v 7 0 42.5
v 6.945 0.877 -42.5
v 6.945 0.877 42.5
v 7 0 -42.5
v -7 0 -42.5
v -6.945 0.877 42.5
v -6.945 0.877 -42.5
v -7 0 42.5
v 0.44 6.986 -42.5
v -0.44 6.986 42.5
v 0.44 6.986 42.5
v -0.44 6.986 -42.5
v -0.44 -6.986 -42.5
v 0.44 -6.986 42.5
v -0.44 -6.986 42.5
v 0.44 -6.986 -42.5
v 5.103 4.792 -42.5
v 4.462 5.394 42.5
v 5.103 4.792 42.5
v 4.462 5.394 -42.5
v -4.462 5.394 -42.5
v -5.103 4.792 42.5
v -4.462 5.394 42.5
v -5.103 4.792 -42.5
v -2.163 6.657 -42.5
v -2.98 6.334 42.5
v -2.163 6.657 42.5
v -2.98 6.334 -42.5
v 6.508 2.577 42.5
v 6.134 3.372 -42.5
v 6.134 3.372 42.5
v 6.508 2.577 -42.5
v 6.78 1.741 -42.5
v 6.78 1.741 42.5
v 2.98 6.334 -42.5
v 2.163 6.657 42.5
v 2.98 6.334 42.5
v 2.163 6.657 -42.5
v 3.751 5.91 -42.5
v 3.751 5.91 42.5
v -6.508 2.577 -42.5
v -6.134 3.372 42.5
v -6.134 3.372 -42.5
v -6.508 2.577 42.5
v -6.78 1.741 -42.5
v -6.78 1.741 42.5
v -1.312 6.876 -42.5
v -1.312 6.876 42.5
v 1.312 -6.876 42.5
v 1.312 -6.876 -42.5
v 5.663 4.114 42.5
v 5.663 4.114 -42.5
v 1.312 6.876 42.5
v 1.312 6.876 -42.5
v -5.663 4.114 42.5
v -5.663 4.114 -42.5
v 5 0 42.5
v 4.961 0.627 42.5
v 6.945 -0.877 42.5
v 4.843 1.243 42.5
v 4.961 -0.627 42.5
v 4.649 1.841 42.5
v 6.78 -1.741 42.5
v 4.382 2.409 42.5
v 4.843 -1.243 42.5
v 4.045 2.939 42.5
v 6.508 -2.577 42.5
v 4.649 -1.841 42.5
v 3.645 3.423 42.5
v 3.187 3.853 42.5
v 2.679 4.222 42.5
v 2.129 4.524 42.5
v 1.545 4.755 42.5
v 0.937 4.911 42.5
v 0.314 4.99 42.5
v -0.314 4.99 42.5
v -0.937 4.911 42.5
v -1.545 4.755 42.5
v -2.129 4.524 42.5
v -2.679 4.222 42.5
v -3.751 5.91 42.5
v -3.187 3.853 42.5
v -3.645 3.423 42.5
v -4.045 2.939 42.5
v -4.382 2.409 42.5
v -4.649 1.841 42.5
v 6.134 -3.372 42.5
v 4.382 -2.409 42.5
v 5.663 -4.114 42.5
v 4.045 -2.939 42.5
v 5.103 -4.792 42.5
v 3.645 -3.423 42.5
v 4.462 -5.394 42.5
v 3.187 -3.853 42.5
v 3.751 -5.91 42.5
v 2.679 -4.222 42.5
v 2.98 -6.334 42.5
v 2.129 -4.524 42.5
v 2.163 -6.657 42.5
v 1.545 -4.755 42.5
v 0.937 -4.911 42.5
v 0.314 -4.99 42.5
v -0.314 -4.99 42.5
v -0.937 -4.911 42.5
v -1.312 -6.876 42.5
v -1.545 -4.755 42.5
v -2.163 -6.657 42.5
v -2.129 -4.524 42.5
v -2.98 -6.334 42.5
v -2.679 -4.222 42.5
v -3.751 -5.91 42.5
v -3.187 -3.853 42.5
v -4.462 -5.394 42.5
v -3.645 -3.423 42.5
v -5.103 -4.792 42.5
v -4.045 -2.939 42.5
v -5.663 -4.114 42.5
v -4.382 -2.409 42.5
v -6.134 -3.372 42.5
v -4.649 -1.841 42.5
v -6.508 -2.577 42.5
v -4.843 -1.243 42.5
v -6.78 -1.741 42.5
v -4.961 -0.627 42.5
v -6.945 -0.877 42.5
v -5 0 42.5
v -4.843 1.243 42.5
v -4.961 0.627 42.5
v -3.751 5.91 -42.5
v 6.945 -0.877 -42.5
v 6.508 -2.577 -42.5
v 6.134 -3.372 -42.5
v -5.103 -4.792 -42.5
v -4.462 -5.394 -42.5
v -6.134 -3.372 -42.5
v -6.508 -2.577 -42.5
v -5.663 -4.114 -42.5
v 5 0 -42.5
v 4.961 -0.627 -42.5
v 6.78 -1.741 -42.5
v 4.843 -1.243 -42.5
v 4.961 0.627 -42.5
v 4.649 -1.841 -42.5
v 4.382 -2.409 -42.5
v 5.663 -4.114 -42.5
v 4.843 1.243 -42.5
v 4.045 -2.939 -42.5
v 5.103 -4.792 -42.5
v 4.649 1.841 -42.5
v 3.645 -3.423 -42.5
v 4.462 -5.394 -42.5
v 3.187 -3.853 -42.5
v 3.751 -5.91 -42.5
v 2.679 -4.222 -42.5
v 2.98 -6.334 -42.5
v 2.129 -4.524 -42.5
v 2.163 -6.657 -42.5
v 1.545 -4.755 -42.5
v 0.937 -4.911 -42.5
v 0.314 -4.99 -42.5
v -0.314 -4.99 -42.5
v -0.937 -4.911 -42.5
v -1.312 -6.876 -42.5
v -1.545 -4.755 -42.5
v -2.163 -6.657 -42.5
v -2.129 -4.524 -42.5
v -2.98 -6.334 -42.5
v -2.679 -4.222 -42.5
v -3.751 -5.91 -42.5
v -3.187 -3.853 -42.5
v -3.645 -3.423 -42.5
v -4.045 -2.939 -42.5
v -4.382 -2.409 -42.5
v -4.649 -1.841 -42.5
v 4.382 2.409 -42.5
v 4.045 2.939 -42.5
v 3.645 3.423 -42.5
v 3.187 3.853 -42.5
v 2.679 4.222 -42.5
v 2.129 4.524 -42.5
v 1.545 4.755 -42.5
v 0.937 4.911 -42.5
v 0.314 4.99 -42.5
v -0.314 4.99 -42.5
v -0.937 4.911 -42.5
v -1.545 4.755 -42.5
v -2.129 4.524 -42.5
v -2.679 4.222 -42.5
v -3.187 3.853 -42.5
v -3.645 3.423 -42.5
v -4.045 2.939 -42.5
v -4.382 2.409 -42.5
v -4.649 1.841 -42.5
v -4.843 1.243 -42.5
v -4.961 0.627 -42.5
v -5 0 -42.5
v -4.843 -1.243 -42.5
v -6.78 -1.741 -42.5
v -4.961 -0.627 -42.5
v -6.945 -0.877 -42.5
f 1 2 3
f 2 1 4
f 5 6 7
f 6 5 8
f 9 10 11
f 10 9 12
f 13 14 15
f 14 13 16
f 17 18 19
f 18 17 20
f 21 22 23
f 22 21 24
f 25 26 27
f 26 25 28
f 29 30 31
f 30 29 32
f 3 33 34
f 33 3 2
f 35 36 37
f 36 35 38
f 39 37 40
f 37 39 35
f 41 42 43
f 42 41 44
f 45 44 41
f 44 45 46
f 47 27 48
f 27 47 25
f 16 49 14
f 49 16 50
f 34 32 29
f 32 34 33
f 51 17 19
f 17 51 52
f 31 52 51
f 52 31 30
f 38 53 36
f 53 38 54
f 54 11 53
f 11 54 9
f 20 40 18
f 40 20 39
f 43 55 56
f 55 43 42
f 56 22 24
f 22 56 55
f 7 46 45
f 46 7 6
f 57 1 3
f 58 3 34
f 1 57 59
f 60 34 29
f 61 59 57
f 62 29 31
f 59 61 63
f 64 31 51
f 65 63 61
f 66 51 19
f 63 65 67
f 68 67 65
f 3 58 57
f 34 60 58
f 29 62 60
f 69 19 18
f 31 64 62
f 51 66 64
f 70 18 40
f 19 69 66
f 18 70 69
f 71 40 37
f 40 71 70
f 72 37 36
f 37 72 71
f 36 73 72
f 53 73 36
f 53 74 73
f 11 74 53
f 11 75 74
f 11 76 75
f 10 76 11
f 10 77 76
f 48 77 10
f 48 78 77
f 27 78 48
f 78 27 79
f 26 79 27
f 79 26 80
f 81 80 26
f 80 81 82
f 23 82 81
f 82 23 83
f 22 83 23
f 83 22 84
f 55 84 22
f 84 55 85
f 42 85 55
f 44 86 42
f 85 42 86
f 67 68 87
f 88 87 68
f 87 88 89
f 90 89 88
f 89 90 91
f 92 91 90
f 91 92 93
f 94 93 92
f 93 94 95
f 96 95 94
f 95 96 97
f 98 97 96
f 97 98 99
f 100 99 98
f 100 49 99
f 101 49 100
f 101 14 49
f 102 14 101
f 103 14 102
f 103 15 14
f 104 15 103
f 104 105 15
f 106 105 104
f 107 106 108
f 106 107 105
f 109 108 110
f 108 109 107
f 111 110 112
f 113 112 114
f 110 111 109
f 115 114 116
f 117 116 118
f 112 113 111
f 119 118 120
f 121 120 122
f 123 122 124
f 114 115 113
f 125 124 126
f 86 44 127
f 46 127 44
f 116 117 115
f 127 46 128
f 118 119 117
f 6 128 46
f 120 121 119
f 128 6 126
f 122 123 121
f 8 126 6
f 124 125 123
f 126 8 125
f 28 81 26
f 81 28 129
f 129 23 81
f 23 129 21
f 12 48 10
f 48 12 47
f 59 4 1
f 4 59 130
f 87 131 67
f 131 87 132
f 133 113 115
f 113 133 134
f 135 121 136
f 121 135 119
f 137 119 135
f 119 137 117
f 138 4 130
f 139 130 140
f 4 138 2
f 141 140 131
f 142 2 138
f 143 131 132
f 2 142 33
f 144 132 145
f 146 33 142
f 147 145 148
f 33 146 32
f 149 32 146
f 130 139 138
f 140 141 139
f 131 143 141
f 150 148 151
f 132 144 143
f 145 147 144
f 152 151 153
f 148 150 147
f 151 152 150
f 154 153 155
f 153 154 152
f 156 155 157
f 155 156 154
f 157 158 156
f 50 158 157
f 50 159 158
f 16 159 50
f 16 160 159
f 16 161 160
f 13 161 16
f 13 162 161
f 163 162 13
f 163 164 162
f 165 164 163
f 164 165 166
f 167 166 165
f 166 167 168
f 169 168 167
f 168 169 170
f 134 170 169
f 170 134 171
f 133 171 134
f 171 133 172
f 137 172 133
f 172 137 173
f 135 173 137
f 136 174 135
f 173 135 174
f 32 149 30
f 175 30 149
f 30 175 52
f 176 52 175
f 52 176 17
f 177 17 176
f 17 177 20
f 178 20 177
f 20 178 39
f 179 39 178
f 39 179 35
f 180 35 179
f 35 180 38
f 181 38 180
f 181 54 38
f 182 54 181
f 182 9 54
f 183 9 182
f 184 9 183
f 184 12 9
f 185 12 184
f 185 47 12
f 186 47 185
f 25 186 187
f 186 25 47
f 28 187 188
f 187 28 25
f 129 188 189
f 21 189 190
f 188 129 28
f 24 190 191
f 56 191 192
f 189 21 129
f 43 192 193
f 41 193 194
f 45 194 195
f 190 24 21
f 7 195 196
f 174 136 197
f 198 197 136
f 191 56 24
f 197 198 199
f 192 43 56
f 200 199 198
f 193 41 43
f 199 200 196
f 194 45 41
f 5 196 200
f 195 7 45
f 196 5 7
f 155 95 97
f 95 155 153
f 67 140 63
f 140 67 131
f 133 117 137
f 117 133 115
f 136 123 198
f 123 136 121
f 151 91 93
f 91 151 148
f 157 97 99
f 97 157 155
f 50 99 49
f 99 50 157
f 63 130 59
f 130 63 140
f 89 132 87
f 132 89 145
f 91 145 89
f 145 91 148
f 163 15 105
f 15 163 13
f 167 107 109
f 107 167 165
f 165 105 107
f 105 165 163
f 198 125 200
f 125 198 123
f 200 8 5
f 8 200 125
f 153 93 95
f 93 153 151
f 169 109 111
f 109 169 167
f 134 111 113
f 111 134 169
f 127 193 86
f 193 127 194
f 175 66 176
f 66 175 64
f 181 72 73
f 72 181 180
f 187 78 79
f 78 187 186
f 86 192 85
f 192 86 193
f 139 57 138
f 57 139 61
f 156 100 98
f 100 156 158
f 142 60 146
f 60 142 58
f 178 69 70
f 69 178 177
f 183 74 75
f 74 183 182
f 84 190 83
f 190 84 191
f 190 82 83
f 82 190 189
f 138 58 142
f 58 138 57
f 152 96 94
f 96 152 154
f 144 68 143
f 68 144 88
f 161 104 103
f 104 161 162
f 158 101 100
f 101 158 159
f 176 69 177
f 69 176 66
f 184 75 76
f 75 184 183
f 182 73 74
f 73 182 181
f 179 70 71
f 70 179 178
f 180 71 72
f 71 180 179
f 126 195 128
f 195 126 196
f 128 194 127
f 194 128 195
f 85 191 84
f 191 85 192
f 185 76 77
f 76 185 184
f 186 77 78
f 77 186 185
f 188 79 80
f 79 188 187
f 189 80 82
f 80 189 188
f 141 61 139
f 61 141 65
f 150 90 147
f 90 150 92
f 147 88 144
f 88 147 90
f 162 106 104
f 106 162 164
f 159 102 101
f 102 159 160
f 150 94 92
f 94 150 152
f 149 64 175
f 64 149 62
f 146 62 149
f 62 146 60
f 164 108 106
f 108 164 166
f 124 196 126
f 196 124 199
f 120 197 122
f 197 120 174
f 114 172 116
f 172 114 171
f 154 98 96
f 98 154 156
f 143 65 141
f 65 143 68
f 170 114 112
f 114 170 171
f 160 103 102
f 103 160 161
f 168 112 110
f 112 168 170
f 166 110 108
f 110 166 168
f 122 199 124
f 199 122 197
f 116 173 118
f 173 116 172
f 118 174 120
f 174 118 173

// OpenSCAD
$fn = 50;


difference() {
	union() {
		translate(v = [0, 0, -42.5000000000]) {
			cylinder(h = 85, r = 7.0000000000);
		}
	}
	union() {
		translate(v = [0, 0, -100.0000000000]) {
			cylinder(h = 200, r = 5);
		}
	}
}
